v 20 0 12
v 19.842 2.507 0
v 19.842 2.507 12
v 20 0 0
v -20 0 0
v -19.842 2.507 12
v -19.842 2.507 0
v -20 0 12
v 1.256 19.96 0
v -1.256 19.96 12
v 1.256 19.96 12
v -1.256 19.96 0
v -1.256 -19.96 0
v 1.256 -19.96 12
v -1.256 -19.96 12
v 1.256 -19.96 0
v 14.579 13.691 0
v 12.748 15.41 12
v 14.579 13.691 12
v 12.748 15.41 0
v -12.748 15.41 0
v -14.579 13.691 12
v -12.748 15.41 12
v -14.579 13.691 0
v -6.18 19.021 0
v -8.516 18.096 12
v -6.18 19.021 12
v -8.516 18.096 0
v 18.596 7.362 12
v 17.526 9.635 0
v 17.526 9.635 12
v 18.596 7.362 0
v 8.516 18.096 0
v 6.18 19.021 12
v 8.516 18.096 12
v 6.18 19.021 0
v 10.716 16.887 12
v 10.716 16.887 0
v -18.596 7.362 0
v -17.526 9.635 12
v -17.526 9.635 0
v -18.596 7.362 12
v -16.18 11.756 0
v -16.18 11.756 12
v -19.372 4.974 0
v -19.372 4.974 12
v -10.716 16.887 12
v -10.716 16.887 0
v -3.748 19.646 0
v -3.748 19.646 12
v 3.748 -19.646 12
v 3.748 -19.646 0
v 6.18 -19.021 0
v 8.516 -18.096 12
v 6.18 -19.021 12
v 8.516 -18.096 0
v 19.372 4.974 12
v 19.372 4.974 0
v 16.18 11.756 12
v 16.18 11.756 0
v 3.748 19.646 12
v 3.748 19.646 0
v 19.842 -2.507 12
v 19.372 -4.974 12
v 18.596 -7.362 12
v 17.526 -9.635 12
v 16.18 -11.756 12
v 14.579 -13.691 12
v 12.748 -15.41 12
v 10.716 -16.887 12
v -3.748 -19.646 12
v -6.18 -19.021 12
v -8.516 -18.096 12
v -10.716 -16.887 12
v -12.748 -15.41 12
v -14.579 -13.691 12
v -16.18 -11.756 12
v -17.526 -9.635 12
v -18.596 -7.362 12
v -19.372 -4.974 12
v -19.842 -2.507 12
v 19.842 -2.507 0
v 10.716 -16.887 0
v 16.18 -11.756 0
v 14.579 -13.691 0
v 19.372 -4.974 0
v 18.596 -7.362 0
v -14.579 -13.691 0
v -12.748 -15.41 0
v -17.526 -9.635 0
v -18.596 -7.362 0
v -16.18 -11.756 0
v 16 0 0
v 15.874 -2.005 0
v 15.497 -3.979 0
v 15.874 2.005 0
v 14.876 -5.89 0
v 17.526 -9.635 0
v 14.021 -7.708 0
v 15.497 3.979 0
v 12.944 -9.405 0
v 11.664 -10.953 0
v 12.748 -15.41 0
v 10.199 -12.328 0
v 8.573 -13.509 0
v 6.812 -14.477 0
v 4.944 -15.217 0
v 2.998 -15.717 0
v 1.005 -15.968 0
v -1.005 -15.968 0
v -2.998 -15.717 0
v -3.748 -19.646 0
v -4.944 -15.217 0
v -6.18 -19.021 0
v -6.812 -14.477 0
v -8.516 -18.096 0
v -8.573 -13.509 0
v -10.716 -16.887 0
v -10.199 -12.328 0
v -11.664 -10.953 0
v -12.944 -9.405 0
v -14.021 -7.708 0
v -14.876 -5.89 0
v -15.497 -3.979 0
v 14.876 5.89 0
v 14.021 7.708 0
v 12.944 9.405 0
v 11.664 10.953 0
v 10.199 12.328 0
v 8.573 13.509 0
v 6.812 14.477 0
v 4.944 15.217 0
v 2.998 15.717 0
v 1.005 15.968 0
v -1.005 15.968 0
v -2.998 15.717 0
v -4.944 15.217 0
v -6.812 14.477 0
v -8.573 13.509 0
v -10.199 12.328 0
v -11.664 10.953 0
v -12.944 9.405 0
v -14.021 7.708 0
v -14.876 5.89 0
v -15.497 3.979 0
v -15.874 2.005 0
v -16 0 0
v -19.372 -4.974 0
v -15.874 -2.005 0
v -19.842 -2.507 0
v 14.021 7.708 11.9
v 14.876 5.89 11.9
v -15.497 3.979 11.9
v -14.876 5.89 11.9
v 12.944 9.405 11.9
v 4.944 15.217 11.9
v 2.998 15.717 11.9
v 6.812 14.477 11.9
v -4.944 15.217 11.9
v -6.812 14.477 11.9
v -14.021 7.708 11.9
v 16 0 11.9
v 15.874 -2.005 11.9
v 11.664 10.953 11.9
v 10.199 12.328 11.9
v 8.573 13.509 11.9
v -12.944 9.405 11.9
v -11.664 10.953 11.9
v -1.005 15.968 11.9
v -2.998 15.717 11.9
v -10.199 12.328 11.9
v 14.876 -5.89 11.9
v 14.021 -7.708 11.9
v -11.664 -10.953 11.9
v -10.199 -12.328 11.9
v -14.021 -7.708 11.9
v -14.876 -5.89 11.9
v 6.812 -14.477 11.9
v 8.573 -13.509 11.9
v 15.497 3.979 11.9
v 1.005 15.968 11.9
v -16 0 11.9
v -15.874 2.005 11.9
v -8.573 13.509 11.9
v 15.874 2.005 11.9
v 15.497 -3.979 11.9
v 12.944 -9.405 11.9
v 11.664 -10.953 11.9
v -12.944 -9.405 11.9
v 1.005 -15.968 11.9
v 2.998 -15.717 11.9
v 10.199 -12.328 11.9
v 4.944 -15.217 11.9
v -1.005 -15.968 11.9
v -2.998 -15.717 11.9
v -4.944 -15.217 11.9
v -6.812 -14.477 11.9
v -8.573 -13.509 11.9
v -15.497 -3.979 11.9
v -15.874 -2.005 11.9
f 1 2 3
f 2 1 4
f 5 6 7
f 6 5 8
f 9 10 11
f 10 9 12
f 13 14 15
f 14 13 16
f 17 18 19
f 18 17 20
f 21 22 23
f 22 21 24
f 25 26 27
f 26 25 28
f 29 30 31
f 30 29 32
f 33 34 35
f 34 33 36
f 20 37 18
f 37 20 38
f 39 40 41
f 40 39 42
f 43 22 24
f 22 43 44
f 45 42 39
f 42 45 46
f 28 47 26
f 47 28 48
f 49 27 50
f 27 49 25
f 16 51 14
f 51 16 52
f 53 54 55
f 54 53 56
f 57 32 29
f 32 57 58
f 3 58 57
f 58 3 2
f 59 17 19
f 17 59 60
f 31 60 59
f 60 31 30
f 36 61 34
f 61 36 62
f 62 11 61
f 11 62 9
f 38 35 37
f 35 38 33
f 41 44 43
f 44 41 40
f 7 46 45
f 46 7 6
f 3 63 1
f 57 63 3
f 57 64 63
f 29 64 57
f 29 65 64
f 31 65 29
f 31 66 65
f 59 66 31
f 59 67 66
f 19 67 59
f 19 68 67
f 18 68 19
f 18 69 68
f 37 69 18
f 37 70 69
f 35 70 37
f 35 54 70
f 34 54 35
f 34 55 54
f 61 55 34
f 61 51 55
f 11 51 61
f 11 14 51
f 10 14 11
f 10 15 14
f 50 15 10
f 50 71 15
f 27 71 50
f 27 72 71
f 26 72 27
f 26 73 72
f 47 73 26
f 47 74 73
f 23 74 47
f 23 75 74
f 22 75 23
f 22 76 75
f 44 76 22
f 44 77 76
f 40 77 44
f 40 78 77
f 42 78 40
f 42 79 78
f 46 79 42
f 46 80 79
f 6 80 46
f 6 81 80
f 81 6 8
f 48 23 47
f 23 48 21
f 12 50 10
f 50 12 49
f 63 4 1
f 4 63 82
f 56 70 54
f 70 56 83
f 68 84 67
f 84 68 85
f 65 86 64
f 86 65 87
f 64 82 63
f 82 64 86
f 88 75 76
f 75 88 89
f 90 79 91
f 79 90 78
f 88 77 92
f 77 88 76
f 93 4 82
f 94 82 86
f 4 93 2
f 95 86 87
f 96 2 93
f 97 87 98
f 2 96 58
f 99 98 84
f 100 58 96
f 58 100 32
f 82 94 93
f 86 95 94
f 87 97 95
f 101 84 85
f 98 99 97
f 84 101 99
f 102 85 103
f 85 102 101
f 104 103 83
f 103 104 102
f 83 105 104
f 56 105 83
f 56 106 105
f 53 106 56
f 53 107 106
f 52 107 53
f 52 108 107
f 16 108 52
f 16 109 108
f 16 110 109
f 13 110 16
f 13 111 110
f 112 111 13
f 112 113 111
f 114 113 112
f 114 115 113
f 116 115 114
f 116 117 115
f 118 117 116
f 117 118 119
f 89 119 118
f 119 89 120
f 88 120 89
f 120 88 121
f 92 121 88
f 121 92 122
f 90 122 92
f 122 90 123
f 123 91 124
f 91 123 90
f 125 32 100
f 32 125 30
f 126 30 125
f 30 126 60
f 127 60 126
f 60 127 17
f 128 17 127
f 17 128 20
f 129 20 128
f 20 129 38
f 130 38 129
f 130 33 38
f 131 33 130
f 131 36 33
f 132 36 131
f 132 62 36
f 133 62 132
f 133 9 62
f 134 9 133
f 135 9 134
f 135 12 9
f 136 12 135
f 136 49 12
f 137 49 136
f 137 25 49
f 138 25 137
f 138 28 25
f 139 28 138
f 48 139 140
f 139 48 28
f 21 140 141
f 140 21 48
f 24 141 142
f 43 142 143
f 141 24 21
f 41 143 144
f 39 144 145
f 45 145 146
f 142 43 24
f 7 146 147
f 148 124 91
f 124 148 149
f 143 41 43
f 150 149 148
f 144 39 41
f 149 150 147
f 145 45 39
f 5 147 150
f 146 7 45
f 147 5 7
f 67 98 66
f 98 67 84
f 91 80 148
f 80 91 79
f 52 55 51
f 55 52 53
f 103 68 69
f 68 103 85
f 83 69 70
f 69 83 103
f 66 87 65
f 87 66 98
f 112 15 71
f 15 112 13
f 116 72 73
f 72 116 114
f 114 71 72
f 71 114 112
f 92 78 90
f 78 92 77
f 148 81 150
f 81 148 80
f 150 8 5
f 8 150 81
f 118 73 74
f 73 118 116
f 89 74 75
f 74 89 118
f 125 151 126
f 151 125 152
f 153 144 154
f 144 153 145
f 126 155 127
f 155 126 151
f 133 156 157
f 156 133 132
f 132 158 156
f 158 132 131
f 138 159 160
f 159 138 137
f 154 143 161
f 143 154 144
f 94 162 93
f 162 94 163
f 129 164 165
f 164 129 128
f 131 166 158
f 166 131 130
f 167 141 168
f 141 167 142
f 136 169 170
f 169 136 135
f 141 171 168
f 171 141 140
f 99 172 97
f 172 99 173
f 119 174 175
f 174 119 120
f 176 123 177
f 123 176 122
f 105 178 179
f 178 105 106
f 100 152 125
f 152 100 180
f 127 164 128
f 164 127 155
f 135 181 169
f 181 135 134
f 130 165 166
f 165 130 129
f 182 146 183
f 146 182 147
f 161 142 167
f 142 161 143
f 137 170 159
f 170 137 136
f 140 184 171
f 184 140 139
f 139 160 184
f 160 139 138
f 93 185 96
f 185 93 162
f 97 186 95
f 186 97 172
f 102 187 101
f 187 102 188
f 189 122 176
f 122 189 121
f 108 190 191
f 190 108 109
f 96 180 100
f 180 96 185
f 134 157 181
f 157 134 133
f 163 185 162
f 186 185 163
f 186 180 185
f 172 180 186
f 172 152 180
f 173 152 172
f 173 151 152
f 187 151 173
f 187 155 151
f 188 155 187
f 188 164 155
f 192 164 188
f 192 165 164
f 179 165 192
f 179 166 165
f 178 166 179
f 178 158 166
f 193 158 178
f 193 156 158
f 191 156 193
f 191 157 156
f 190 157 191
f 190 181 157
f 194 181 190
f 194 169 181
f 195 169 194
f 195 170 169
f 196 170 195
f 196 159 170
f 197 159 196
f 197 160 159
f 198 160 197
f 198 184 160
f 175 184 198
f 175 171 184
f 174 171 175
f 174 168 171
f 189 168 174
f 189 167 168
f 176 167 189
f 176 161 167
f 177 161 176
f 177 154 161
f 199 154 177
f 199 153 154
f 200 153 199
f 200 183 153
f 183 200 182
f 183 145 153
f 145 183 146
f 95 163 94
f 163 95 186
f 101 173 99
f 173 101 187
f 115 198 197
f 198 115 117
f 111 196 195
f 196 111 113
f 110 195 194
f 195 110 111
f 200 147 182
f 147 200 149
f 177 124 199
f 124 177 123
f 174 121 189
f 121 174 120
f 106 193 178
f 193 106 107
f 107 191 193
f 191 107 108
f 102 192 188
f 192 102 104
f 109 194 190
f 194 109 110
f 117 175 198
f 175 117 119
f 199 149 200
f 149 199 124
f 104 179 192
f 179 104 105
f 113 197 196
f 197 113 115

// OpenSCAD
$fn = 50;

difference() {
    cylinder(h=12, r=20);
    cylinder(h=12 - 0.1, r=16);
}
